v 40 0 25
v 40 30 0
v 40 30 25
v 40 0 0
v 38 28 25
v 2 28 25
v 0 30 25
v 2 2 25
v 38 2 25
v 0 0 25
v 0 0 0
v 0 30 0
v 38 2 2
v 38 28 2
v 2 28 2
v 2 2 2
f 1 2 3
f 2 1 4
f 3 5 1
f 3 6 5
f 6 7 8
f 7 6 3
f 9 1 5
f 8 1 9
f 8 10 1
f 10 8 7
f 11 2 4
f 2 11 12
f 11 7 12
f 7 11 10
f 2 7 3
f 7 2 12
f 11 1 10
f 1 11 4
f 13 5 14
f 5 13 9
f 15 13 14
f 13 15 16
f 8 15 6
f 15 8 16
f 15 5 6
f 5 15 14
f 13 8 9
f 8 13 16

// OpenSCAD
// Parametric Hollow Box
// A simple open-top box with configurable dimensions and wall thickness.

// --- Parameters ---
width     = 40;   // outer width (X)
depth     = 30;   // outer depth (Y)
height    = 25;   // outer height (Z)
wall      = 2;    // wall thickness
bottom    = 2;    // bottom thickness (can differ from walls)

// --- Computed inner dimensions ---
inner_w = width  - 2 * wall;
inner_d = depth  - 2 * wall;
inner_h = height - bottom;

// --- Model ---
module hollow_box(w, d, h, wall, bottom) {
    difference() {
        // Outer shell
        cube([w, d, h]);

        // Inner cavity (shifted up by bottom thickness, inset by wall)
        translate([wall, wall, bottom])
            cube([w - 2*wall, d - 2*wall, h - bottom + 1]);
            // +1 on Z to cleanly cut through the top (open top)
    }
}

hollow_box(width, depth, height, wall, bottom);
